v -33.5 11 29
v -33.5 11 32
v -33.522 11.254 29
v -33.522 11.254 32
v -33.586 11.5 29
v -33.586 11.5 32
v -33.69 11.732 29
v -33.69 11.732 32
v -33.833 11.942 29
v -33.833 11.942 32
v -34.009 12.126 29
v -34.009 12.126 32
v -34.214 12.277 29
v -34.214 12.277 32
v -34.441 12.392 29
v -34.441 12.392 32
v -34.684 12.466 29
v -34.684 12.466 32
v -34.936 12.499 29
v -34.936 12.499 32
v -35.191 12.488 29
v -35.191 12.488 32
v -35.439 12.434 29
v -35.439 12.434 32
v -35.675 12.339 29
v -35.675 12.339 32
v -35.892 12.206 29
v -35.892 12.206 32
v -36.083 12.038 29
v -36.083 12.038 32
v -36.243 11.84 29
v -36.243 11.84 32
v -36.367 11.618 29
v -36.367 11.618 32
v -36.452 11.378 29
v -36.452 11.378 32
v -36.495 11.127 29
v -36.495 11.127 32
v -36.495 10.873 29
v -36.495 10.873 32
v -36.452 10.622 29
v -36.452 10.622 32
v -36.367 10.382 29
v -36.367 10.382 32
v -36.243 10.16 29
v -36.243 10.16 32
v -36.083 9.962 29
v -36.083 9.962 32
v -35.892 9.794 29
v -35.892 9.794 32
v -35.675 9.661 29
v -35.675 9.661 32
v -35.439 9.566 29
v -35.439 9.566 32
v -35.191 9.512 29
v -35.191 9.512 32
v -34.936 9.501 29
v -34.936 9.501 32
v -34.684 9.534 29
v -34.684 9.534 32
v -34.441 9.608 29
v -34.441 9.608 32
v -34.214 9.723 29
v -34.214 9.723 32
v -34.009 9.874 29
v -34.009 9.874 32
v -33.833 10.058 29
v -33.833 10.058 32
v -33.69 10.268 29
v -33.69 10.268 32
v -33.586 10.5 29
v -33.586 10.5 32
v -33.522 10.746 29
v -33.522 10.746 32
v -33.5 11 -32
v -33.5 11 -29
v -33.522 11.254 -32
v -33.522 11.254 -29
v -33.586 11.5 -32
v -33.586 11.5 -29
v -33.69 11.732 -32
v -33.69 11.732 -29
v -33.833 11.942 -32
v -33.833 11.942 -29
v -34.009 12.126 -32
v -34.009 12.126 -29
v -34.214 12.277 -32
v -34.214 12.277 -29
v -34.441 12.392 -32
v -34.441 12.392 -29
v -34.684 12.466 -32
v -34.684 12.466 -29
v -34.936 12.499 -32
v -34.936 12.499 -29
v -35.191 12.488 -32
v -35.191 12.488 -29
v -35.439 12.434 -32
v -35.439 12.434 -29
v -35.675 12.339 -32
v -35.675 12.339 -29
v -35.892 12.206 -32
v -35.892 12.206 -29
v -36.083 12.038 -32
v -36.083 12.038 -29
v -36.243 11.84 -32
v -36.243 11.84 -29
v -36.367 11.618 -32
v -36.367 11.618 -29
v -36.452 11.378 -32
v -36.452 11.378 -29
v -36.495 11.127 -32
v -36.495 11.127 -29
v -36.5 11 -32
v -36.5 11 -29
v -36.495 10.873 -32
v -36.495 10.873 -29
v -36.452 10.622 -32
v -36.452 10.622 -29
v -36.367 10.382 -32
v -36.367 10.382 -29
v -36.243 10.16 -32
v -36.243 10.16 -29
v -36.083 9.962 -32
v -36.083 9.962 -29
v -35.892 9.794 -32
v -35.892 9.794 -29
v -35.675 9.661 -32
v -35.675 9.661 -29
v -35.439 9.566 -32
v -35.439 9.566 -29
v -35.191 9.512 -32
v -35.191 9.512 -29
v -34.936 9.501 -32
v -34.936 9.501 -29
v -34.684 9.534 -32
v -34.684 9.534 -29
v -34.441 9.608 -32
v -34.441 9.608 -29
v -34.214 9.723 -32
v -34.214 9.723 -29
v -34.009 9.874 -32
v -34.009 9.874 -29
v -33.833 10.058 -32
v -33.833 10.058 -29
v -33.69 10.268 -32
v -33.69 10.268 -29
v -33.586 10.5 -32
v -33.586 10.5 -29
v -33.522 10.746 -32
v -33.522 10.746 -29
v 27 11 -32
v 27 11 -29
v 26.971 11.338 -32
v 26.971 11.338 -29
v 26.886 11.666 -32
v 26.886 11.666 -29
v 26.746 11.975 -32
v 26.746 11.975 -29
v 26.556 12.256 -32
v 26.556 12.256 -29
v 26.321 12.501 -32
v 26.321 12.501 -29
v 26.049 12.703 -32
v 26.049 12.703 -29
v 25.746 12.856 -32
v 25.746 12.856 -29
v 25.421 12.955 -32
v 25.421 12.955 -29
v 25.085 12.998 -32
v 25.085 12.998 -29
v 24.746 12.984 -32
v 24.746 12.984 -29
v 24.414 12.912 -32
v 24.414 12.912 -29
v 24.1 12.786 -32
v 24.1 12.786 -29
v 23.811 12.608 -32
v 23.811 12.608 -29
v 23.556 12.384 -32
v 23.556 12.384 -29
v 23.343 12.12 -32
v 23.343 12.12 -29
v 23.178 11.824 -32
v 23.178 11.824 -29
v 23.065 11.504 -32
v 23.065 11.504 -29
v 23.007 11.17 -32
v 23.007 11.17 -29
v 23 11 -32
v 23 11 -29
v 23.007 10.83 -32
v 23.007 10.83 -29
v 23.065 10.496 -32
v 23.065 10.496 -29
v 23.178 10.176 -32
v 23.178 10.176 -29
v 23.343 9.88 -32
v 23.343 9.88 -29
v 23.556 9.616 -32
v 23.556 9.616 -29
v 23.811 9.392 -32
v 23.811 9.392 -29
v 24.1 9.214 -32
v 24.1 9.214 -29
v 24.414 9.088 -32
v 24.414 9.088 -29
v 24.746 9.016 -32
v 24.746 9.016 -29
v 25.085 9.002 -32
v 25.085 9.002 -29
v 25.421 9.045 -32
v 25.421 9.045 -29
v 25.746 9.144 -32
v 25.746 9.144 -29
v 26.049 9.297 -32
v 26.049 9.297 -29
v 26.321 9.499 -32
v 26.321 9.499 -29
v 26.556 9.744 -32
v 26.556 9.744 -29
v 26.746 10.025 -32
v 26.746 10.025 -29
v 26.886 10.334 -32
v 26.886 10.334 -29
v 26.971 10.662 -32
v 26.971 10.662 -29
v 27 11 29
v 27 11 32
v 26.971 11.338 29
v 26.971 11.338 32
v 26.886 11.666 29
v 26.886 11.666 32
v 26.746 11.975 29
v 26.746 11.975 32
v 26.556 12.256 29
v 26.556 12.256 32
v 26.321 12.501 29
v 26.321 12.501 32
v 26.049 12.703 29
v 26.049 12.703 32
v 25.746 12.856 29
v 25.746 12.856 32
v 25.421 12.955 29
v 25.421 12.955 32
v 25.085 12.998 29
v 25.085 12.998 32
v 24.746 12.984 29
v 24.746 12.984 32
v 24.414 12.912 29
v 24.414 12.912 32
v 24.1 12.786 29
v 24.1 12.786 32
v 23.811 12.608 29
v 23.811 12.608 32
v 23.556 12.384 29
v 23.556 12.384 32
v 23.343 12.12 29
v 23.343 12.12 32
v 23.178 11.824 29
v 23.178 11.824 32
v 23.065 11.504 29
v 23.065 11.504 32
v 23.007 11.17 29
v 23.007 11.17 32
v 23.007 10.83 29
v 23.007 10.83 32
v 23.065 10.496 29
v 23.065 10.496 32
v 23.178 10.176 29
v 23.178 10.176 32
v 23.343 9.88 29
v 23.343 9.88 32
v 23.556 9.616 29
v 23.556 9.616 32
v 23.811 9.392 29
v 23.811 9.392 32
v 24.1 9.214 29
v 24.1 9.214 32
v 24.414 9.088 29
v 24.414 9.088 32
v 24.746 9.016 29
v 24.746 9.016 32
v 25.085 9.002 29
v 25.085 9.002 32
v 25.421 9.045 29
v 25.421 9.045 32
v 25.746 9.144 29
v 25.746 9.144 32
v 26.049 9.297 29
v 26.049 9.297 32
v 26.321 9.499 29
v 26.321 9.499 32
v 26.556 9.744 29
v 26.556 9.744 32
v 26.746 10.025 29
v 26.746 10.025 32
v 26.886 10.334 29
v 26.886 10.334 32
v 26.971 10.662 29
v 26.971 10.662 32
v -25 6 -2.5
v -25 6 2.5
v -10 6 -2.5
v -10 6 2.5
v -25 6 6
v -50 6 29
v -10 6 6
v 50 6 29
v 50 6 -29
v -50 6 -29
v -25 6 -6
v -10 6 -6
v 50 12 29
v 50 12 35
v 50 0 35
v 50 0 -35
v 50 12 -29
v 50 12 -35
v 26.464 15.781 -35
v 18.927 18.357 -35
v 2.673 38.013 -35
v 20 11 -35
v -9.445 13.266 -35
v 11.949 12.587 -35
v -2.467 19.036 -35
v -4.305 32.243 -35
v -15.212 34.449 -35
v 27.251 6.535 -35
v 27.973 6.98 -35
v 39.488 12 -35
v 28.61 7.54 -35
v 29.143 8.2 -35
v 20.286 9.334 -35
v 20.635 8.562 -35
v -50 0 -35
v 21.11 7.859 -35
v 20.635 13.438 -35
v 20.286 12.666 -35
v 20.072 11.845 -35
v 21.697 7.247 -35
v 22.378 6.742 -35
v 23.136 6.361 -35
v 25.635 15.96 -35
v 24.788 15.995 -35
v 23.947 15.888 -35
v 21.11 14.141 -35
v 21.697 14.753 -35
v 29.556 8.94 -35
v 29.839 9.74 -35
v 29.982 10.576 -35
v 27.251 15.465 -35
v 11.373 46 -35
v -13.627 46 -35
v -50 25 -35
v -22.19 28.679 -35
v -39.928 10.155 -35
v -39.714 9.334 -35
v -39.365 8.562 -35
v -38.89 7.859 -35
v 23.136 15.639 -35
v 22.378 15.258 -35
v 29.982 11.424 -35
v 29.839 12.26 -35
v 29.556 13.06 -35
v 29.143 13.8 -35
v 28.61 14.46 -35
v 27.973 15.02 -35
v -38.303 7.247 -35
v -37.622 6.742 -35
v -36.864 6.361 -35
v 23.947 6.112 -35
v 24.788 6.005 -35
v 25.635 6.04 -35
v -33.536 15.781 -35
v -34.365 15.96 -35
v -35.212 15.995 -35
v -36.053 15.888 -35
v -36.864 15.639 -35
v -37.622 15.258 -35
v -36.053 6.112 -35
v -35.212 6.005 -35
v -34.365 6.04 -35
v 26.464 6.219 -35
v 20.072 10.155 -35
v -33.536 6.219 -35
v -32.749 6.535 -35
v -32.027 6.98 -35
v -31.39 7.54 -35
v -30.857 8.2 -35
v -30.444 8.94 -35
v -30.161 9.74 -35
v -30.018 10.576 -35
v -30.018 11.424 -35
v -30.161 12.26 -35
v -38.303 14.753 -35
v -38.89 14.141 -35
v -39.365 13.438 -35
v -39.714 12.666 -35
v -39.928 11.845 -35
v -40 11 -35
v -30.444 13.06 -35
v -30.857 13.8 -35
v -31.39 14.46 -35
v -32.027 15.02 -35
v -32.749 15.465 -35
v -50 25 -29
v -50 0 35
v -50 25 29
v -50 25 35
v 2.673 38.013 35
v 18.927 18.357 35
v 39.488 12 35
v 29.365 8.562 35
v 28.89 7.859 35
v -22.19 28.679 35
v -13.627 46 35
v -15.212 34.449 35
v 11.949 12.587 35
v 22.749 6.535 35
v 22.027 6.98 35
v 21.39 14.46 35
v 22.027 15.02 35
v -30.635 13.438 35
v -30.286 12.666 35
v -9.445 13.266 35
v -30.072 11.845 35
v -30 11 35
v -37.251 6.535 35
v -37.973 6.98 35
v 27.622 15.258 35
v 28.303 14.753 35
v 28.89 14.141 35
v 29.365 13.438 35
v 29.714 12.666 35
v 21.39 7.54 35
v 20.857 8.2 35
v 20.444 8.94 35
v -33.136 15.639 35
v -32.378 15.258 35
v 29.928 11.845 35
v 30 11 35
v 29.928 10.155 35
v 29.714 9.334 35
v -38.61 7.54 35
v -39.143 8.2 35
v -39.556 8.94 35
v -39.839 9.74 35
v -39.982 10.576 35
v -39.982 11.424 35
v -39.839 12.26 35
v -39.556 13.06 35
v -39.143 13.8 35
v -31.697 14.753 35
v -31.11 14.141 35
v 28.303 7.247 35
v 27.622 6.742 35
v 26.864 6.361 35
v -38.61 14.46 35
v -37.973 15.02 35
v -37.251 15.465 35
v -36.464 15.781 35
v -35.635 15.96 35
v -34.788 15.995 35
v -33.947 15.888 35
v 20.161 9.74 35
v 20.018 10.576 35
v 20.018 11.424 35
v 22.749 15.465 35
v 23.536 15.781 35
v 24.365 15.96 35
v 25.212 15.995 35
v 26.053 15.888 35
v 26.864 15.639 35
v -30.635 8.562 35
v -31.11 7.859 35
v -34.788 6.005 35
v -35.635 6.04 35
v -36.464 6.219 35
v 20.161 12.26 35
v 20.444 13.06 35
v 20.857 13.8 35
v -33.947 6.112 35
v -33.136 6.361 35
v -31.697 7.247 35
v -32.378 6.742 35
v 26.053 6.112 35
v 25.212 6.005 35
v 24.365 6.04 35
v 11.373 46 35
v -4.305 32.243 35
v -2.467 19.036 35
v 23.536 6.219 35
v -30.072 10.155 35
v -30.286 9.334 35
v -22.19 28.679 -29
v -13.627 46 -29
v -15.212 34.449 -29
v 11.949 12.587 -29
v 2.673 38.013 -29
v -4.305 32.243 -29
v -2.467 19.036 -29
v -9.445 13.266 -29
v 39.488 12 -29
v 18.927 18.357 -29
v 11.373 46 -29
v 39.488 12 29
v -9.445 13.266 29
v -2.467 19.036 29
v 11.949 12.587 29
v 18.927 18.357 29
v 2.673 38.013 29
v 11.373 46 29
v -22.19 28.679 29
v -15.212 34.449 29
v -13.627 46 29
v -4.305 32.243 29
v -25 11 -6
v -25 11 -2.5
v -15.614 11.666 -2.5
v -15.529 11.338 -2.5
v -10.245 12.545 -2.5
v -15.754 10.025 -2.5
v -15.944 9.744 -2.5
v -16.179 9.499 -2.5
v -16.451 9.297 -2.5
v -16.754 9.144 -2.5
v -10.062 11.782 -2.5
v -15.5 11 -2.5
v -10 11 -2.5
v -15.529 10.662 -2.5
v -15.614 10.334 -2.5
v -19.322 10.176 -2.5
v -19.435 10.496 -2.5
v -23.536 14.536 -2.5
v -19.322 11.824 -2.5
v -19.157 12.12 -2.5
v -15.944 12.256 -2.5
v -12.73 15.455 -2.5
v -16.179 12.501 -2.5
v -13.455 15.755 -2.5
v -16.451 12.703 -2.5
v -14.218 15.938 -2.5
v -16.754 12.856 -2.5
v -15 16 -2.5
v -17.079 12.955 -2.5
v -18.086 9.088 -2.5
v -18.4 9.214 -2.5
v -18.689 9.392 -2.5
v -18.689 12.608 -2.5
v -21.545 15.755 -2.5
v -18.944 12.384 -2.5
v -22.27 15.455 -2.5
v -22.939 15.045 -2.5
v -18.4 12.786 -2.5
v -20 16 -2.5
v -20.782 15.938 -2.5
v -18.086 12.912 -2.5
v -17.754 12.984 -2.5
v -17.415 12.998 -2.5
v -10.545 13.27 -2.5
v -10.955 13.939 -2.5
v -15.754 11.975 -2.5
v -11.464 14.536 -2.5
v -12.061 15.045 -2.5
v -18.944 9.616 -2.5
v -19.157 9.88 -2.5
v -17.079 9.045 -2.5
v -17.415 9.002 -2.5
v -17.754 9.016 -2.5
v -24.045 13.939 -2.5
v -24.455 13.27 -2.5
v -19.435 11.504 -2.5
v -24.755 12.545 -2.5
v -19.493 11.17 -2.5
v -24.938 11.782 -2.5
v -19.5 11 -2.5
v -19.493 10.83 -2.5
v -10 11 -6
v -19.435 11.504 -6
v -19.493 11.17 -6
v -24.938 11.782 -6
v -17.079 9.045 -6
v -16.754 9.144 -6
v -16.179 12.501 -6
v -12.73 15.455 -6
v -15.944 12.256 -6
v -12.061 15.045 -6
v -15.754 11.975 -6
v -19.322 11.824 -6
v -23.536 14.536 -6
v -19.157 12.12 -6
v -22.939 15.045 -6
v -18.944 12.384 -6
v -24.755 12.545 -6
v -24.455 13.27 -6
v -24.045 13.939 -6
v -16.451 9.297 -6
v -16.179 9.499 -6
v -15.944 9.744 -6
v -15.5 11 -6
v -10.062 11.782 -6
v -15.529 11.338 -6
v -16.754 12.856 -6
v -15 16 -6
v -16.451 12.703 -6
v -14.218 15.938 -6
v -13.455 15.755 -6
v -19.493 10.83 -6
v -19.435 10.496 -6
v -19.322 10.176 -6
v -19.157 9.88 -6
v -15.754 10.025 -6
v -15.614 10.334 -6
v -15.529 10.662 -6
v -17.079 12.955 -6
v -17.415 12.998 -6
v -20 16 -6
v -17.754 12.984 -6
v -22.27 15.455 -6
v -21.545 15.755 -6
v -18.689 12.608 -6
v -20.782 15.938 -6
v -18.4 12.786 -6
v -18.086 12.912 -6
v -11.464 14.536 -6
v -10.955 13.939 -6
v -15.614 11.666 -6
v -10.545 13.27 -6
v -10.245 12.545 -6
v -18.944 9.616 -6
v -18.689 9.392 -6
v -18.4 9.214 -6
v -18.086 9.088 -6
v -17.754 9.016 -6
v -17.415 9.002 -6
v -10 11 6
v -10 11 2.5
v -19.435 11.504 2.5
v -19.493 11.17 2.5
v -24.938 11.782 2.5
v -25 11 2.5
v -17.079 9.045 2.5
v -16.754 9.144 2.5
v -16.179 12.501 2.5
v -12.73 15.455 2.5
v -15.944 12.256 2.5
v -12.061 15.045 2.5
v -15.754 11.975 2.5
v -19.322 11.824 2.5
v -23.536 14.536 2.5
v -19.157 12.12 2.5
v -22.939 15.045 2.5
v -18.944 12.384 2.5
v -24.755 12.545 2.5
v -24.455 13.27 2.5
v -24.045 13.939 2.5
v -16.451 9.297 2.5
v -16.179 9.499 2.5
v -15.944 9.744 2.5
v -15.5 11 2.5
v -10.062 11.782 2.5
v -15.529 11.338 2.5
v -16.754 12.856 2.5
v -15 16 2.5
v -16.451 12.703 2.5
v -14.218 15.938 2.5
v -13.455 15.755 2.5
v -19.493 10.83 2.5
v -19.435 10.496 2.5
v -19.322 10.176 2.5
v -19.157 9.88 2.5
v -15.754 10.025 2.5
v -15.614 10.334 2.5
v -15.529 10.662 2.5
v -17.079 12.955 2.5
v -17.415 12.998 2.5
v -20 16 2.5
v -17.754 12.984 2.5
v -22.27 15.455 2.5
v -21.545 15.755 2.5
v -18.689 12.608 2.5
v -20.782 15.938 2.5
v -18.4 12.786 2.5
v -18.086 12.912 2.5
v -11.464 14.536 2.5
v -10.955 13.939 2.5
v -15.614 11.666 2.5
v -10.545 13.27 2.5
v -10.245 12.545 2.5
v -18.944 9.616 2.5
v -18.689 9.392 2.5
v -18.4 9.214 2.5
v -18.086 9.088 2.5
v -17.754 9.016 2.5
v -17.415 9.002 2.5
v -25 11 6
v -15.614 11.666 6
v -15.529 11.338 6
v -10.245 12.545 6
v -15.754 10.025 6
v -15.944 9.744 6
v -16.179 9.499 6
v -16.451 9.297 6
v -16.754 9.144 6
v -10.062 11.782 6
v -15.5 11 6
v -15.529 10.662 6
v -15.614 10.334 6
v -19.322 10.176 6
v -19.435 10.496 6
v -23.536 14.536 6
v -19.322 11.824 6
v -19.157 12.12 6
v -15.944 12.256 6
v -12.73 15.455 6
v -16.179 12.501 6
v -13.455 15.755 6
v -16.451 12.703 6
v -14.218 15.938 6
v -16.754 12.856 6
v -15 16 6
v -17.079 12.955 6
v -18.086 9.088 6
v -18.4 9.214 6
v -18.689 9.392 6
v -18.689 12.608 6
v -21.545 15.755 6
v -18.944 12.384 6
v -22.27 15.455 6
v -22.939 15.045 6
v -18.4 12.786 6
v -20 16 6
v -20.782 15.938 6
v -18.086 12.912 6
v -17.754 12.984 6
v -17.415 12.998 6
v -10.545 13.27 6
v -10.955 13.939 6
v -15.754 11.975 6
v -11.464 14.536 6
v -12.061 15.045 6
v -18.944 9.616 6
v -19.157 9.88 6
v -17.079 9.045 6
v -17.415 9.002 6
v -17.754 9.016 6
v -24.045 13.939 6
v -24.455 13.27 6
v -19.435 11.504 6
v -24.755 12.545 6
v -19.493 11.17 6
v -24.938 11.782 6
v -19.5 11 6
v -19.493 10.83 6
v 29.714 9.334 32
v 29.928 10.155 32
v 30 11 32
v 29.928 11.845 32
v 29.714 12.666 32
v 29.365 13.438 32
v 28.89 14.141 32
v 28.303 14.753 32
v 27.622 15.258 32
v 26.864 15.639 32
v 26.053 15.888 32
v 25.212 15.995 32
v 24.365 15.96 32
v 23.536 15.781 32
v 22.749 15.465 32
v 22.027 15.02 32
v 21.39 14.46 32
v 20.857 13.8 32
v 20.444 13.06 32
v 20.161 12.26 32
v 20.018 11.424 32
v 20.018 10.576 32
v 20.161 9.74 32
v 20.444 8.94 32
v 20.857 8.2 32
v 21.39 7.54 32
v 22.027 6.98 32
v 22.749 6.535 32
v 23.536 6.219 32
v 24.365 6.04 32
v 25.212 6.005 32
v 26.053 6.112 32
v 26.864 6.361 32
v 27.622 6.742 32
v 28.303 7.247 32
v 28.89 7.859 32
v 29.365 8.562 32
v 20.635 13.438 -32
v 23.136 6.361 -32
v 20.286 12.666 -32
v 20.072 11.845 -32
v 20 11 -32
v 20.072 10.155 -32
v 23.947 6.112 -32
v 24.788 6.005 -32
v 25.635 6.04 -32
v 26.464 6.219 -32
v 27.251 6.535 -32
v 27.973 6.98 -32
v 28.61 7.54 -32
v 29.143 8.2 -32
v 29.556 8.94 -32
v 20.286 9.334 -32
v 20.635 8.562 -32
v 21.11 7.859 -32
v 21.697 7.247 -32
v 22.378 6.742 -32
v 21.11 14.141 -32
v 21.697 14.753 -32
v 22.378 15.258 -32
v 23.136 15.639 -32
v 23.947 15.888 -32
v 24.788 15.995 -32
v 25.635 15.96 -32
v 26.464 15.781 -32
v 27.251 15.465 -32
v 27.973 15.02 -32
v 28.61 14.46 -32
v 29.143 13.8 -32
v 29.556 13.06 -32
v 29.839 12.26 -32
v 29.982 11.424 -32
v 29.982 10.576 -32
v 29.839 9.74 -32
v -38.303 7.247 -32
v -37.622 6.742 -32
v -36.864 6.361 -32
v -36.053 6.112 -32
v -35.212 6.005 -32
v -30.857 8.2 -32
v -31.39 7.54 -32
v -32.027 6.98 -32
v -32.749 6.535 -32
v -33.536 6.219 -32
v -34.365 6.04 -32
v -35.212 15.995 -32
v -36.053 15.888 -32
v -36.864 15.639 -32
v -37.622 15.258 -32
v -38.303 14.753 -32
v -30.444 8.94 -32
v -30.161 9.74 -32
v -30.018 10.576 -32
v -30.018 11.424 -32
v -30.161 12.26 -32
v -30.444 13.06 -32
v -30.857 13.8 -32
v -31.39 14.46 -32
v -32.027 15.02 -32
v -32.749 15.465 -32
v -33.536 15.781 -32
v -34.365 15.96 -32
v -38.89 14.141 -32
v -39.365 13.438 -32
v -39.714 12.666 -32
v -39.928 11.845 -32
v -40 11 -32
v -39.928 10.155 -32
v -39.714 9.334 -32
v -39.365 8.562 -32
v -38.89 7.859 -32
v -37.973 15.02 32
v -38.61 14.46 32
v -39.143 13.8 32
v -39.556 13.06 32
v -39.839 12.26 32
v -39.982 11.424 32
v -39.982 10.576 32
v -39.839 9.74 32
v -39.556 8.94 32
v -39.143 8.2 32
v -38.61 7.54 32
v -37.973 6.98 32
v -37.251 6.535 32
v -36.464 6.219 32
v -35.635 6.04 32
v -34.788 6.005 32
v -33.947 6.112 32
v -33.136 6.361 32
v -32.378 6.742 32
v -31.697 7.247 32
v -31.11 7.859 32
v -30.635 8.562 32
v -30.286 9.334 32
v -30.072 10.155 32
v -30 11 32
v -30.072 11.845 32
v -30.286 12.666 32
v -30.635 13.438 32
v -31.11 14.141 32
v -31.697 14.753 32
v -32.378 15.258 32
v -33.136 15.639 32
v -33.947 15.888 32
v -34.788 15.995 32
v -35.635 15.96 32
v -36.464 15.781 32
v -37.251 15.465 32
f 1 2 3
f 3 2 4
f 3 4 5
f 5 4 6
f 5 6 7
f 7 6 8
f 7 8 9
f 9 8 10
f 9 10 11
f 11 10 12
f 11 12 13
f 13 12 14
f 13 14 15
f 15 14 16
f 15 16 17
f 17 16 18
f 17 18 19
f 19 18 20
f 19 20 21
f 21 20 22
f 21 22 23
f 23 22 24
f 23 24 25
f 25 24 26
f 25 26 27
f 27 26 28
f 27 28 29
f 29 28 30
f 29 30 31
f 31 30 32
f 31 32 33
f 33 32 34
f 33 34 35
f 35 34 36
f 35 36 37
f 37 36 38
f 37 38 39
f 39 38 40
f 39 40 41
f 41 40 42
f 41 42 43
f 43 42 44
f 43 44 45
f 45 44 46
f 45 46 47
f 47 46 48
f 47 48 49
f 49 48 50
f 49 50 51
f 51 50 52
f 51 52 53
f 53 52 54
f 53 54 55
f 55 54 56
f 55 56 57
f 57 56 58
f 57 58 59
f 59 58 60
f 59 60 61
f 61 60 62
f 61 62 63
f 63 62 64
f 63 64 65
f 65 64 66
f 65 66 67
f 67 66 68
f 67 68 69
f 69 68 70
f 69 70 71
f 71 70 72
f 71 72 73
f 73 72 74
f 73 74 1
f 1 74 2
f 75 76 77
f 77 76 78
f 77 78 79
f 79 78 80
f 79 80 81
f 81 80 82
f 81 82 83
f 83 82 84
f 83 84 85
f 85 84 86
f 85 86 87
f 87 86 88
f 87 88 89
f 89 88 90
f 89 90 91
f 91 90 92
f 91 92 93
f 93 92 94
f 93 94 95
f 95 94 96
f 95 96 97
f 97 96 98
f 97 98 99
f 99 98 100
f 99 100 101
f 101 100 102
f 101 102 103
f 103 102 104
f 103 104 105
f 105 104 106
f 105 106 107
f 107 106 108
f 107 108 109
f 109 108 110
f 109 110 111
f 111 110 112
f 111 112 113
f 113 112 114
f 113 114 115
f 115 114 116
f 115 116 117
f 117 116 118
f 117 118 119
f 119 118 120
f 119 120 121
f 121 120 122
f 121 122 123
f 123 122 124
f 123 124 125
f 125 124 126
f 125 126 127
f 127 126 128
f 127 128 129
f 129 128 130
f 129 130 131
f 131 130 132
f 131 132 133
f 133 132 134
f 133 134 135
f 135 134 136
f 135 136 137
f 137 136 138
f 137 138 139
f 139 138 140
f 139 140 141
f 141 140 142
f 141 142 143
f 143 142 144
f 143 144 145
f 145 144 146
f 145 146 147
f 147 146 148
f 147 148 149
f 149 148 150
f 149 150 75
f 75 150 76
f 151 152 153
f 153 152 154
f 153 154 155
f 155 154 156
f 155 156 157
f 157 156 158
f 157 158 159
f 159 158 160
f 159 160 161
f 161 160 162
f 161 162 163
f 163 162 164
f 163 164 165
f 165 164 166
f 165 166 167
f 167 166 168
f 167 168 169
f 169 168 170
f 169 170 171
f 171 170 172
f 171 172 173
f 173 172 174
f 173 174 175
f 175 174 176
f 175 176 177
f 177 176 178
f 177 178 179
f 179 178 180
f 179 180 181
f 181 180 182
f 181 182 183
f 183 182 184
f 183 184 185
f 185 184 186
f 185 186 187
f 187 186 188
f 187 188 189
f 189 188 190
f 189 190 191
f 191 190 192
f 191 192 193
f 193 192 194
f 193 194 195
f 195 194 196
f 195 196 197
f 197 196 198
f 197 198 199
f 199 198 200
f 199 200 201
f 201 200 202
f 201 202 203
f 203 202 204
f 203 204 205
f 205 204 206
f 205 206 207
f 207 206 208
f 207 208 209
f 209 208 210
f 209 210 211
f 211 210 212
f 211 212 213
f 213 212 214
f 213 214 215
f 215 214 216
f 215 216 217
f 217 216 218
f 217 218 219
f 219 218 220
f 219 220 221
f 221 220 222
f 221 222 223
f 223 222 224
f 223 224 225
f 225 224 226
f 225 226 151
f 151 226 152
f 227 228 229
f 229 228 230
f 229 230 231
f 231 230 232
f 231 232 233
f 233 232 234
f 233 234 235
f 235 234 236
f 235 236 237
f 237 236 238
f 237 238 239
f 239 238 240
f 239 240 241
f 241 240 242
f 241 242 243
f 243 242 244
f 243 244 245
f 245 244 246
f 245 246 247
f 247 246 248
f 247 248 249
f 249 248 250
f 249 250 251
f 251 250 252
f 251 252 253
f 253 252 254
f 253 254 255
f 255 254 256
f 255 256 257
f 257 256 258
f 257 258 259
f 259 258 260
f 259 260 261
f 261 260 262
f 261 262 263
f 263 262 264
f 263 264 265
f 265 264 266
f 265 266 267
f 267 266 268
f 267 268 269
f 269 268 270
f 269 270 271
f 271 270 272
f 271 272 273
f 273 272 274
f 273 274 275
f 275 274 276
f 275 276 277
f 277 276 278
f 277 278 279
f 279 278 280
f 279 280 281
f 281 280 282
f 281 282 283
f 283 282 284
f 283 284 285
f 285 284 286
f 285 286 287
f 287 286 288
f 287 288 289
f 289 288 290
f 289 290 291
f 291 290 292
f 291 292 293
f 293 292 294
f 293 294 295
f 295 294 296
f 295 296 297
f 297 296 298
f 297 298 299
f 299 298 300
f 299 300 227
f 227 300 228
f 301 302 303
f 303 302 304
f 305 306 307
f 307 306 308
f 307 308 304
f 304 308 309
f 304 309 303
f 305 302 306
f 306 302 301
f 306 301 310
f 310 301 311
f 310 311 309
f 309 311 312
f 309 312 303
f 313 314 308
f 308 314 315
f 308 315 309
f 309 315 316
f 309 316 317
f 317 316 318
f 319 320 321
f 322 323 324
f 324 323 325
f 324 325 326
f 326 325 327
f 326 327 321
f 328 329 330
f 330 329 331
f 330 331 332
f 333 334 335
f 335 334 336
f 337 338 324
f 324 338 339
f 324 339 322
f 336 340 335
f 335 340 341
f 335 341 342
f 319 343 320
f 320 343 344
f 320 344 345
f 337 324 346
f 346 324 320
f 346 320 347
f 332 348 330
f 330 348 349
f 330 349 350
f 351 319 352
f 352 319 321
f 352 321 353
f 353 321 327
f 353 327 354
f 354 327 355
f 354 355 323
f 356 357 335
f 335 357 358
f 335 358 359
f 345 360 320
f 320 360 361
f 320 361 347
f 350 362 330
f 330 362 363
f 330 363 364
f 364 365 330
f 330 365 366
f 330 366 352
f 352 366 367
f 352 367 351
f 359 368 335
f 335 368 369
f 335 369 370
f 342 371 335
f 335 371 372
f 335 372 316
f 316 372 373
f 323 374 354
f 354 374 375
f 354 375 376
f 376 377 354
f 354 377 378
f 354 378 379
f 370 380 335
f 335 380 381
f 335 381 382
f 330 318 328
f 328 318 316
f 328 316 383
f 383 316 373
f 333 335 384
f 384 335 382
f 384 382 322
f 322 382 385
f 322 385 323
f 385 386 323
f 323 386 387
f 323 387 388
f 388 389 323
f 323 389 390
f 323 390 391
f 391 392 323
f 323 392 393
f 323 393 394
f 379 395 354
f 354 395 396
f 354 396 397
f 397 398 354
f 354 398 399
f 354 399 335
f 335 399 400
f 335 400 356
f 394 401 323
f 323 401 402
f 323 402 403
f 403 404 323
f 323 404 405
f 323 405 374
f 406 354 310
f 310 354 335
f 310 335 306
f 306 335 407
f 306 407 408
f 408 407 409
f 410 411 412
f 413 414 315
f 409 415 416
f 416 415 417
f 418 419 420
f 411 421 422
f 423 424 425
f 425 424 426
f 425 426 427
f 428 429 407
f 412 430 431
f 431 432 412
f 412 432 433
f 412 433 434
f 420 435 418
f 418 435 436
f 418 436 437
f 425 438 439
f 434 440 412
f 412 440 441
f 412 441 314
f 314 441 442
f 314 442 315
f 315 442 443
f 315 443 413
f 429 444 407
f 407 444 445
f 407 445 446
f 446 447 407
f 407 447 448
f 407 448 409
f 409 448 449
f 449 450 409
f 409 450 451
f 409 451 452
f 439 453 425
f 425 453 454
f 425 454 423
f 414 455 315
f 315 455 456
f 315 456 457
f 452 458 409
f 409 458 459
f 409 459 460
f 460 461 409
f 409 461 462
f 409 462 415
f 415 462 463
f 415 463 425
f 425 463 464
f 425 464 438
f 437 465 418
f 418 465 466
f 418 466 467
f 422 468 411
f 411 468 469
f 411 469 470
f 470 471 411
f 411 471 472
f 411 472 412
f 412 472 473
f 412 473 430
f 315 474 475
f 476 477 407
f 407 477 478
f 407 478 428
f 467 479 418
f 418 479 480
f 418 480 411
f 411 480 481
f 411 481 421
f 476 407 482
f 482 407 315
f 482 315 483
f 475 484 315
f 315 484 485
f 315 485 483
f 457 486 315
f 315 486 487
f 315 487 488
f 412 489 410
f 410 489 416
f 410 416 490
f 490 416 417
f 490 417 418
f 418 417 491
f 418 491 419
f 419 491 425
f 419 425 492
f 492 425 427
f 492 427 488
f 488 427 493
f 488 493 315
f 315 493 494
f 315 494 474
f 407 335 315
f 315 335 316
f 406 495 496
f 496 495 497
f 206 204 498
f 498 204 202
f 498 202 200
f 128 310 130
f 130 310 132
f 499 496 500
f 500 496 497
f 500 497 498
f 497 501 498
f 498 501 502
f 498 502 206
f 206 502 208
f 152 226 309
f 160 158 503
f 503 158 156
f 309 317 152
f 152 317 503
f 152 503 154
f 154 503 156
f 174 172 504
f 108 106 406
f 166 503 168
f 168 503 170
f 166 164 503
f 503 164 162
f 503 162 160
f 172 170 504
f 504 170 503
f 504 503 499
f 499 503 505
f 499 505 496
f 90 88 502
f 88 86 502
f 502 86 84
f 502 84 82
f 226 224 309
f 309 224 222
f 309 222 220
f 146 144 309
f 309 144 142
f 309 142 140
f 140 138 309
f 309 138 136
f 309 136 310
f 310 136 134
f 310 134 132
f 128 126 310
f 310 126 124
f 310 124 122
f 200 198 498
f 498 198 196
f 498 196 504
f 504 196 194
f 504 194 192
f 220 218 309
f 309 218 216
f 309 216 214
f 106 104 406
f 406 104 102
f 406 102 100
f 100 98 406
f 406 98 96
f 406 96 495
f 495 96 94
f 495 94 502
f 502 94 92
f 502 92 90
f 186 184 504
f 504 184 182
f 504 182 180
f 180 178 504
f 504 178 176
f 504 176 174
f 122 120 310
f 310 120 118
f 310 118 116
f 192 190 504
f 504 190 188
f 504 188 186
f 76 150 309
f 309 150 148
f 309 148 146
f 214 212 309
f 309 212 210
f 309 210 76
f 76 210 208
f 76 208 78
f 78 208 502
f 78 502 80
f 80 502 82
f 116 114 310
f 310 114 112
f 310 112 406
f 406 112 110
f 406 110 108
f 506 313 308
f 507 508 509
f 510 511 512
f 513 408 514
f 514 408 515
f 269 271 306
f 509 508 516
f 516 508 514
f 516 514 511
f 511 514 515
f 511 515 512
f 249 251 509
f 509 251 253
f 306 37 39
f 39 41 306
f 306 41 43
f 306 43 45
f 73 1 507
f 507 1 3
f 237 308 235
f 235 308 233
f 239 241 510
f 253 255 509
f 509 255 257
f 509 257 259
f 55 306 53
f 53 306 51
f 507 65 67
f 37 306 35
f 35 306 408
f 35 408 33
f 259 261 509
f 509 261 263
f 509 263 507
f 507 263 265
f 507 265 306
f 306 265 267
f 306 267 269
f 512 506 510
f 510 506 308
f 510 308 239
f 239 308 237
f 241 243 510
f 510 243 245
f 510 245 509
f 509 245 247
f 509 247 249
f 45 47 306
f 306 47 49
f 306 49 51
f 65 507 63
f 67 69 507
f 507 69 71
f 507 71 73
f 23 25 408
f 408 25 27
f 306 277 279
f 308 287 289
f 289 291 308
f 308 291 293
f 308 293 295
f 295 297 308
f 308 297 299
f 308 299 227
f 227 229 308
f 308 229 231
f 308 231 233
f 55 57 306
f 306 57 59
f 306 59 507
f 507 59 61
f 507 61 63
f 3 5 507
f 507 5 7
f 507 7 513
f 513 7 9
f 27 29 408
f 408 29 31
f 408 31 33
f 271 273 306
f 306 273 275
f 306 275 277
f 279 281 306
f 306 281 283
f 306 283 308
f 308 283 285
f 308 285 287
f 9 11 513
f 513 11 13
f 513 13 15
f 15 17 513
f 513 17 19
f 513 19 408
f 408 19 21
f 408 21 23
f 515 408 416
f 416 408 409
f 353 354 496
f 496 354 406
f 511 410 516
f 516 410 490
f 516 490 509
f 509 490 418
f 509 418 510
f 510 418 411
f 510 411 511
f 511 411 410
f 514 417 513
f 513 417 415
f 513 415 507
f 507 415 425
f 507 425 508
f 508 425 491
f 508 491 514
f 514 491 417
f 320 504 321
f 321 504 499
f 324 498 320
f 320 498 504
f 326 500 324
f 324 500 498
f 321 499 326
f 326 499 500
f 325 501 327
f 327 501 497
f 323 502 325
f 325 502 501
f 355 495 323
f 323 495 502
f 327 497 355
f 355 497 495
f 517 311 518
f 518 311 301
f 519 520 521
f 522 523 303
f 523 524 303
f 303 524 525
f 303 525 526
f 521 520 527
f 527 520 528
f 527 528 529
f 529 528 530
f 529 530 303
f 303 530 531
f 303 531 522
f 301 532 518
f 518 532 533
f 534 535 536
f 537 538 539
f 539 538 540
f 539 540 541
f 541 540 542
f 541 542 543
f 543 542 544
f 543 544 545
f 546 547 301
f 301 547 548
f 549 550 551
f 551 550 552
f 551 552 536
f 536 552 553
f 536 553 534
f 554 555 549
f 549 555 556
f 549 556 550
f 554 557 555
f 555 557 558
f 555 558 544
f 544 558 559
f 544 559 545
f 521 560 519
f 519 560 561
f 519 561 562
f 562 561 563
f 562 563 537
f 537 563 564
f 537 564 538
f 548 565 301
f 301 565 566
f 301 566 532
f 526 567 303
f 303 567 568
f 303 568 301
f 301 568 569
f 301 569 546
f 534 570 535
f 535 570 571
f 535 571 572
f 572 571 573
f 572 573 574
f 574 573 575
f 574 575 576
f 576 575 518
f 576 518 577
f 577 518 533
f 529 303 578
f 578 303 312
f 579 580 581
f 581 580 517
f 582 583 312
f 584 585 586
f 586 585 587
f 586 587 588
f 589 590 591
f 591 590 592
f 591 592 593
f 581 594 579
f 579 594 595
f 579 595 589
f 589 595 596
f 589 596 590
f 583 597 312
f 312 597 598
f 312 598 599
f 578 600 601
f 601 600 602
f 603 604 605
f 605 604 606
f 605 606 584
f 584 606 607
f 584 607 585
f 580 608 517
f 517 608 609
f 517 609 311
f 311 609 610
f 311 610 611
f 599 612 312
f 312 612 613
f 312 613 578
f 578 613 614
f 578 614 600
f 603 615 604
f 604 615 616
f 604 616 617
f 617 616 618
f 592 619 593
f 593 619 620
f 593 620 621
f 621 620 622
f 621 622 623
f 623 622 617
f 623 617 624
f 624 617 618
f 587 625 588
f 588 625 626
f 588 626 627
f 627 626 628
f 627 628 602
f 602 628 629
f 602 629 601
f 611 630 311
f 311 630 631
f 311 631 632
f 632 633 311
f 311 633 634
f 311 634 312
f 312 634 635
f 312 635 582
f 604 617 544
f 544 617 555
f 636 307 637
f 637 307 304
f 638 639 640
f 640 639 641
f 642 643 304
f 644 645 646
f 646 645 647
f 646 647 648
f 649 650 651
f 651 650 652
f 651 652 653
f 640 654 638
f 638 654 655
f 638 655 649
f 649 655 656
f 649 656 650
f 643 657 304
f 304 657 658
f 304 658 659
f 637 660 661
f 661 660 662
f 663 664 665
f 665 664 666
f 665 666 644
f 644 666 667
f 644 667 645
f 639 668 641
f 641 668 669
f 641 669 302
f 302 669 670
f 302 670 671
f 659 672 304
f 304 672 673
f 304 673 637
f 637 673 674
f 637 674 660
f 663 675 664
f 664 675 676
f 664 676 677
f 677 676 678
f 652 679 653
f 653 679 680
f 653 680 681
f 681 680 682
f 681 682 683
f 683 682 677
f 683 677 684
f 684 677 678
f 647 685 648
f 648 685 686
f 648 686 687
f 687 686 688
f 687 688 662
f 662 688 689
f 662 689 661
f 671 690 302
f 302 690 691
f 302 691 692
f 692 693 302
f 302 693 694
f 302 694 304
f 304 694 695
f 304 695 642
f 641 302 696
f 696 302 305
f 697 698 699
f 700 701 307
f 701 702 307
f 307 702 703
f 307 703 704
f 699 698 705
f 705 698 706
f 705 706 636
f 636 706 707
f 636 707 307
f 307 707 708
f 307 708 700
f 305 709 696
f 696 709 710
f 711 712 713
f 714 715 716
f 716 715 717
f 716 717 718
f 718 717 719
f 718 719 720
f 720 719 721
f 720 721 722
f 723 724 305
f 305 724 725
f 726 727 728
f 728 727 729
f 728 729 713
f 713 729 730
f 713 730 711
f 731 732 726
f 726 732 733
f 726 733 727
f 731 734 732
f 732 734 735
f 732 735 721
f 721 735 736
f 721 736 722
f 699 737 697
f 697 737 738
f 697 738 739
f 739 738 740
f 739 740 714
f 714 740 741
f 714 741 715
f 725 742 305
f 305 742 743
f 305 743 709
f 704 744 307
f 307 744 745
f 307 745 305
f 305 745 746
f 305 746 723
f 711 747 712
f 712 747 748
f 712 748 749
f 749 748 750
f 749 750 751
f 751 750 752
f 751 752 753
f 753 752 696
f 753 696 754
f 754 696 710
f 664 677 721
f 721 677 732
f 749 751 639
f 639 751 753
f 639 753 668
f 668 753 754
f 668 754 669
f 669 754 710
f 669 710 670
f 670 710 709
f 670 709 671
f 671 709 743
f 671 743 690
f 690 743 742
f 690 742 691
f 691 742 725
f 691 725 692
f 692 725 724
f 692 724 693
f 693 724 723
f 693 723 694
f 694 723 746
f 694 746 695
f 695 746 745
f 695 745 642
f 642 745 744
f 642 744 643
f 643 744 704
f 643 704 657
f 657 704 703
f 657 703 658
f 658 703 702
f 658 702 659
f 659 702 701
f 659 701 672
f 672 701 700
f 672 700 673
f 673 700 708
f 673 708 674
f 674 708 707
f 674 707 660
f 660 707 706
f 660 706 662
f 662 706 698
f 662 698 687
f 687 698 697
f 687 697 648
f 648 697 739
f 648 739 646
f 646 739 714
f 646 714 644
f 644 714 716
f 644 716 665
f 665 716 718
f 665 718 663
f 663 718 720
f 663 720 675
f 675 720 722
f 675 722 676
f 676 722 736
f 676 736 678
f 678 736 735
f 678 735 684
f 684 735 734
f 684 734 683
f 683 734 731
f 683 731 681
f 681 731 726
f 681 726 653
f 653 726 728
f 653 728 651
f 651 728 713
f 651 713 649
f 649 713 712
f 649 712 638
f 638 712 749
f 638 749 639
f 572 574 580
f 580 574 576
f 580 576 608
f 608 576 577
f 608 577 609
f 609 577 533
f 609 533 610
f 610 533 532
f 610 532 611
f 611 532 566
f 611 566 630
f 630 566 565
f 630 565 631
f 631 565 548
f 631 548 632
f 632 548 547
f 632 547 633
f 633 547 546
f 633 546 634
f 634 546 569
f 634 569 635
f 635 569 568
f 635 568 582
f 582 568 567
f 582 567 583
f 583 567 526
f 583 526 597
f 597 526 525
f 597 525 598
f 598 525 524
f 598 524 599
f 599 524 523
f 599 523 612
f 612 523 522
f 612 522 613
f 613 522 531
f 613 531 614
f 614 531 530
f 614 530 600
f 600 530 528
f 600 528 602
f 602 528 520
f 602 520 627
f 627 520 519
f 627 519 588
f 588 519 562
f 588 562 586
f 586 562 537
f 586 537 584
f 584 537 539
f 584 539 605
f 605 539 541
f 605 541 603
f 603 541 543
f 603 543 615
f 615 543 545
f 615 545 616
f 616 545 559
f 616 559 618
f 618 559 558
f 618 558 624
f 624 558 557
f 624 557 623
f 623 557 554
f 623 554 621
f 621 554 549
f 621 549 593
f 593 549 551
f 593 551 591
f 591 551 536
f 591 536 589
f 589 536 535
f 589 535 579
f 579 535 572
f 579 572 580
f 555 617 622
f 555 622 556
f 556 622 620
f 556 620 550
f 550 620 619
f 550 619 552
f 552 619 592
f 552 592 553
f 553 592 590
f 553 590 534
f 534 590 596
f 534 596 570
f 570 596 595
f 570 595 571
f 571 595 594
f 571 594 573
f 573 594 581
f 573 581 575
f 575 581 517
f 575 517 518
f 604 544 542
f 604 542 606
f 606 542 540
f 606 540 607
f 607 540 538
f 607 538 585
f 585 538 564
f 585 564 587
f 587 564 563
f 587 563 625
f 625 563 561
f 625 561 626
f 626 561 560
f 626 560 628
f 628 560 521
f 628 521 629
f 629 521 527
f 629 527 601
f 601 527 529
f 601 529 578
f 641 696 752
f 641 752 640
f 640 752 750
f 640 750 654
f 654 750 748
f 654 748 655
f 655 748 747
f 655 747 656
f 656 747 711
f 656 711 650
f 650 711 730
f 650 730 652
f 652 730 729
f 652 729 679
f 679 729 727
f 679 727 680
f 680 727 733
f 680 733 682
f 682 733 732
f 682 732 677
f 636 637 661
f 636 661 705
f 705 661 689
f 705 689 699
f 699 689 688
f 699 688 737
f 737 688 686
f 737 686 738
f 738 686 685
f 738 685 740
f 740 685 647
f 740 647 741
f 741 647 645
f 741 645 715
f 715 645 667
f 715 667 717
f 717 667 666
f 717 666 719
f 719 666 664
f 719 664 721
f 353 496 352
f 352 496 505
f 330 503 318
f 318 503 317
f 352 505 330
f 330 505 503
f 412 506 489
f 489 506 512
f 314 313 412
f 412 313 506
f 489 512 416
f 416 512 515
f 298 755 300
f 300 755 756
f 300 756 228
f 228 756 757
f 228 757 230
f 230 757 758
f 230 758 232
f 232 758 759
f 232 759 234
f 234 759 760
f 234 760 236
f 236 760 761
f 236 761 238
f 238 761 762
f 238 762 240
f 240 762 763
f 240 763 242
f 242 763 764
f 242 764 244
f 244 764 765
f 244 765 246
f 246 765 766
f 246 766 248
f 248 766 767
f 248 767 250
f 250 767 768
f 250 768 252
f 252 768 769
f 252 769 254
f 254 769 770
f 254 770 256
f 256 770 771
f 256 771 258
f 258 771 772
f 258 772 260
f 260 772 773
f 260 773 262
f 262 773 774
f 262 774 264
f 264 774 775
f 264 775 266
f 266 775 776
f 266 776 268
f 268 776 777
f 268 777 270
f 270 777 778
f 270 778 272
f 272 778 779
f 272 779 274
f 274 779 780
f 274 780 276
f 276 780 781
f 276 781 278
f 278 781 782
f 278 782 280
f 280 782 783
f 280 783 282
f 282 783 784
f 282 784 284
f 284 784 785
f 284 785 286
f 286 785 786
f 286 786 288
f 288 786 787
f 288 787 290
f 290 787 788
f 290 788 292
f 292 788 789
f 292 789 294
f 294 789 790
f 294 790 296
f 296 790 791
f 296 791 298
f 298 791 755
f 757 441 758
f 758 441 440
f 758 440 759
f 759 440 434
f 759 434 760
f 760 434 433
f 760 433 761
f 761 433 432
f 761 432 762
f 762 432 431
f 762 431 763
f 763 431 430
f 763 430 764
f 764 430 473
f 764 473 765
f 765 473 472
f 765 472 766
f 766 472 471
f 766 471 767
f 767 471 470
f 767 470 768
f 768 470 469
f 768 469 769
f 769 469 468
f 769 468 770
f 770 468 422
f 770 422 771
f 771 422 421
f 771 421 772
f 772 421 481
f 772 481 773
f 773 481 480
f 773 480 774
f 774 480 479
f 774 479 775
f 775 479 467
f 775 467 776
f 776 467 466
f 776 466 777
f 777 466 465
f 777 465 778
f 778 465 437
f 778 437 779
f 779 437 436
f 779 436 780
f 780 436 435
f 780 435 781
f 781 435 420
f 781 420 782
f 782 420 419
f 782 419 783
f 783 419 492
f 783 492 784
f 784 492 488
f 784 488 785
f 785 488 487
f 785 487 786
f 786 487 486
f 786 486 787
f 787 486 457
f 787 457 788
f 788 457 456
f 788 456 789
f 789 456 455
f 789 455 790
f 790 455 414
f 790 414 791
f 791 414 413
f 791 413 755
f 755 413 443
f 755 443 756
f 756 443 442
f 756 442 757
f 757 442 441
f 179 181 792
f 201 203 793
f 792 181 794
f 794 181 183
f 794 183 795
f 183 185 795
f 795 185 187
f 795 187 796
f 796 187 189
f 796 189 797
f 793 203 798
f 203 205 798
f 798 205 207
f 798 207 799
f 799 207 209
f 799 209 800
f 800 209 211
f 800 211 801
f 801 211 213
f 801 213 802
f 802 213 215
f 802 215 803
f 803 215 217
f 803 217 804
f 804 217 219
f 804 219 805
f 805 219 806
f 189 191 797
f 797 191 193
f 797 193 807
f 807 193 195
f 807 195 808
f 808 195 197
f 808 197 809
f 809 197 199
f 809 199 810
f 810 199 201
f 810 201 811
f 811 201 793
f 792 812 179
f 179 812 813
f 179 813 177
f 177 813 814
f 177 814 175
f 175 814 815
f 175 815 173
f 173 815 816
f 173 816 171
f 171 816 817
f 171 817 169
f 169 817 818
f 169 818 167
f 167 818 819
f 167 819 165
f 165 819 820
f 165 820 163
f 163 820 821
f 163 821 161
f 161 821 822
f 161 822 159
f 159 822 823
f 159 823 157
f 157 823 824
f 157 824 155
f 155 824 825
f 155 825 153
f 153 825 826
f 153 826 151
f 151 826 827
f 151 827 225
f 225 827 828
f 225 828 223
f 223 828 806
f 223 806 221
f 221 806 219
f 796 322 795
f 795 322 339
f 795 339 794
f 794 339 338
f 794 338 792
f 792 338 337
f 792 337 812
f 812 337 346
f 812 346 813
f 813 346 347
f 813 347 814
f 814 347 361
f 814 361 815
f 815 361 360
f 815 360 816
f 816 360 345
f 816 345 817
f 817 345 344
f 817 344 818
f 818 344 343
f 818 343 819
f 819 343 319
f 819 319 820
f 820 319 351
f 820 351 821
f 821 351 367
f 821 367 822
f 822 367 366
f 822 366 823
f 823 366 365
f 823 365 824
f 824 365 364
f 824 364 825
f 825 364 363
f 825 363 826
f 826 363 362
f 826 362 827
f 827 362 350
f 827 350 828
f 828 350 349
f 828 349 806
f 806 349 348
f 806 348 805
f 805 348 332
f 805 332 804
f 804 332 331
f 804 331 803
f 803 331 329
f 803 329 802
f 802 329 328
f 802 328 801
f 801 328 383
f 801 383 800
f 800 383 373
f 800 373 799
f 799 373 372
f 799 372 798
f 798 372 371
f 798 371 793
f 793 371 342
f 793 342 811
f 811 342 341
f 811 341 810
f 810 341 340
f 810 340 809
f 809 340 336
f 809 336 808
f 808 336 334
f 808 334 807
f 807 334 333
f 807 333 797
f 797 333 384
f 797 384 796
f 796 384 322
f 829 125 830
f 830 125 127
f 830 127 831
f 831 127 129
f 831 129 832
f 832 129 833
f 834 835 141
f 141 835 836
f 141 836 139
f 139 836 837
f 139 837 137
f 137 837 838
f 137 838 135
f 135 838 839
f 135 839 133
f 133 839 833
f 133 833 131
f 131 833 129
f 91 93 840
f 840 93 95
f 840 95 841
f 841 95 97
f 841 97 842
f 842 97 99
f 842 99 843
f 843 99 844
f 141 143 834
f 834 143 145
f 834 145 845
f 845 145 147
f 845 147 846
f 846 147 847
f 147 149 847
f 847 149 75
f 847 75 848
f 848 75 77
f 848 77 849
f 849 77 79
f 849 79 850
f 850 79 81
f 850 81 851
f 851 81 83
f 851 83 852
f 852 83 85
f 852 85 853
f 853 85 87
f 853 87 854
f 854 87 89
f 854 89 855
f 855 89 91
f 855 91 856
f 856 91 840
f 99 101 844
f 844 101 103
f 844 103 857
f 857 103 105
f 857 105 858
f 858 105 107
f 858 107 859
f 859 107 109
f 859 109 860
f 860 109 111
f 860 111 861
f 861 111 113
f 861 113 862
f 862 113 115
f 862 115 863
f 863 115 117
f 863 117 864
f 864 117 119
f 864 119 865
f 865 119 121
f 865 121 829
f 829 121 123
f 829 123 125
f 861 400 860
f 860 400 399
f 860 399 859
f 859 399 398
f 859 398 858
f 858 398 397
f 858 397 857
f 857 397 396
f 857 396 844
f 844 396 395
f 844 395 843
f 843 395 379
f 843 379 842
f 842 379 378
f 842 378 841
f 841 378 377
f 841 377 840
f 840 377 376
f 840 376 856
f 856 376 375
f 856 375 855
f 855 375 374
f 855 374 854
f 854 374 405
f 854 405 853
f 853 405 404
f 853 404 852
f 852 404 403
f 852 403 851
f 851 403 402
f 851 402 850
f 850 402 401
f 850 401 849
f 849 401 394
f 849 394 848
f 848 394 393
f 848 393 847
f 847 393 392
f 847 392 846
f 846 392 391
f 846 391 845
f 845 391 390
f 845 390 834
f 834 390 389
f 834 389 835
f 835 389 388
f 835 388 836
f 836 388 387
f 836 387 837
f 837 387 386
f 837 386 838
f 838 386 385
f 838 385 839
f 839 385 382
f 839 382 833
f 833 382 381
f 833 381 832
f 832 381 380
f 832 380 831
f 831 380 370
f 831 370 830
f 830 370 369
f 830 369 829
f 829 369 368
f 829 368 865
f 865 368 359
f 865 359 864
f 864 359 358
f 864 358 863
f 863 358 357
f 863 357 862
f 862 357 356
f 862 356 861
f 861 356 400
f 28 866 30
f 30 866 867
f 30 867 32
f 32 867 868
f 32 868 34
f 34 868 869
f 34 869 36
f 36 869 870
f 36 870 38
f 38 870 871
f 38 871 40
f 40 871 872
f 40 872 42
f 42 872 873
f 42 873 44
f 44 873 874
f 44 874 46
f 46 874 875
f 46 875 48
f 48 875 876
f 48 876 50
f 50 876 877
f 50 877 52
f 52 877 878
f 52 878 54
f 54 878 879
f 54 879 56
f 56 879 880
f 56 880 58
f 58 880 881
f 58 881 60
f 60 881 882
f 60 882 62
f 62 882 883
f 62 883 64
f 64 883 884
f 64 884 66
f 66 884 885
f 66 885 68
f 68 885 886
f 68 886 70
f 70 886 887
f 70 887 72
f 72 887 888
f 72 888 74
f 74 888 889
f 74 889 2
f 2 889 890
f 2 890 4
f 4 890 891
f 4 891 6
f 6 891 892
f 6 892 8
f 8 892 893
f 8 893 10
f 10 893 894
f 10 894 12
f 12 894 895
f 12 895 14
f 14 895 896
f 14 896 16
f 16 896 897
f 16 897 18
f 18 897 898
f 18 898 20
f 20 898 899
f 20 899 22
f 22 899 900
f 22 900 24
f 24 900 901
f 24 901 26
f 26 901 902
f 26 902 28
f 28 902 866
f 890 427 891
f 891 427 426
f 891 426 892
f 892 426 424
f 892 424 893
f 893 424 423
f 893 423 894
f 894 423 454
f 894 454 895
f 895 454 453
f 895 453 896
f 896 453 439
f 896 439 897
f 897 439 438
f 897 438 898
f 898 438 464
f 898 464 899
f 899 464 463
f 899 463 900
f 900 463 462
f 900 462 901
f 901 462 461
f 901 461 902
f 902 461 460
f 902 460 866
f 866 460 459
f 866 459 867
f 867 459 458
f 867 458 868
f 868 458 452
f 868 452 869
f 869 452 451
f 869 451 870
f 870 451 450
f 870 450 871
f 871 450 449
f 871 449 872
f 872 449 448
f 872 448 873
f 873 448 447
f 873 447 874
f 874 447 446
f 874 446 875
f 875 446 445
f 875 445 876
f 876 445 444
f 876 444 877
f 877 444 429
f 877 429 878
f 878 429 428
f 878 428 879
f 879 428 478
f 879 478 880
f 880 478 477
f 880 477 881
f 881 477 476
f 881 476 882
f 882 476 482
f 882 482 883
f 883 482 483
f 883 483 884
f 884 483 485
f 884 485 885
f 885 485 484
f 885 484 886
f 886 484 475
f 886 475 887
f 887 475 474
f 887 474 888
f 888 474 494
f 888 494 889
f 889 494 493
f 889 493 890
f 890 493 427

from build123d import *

# Parameters (mm, degrees)
SKETCH1_W               = 100
SKETCH1_H               = 70
BOSS_EXTRUDE1_DEPTH     = 6
SKETCH2_W               = 100
SKETCH2_H               = 6
BOSS_EXTRUDE2_DEPTH     = 50
CUT_EXTRUDE1_DEPTH      = 103.645019363
CUT_EXTRUDE1_DEPTH_BACK = 103.645019363
SKETCH3_R               = 1.5
SKETCH3_R_2             = 2
CUT_EXTRUDE2_DEPTH      = 103.645019363
CUT_EXTRUDE2_DEPTH_BACK = 103.645019363
CUT_EXTRUDE3_DEPTH      = 103.645019363
CUT_EXTRUDE4_DEPTH      = 103.645019363
CUT_EXTRUDE4_DEPTH_BACK = 103.645019363
CUT_EXTRUDE5_DEPTH      = 103.645019363
CUT_EXTRUDE5_DEPTH_BACK = 103.645019363
SKETCH9_W               = 15
SKETCH9_H               = 3.5
BOSS_EXTRUDE3_DEPTH     = 10
CUT_EXTRUDE8_START      = -3.5
SKETCH11_R              = 2
CUT_EXTRUDE8_DEPTH      = 12
FILLET1_R               = 5
FILLET2_R               = 5
FILLET3_R               = 5
FILLET4_R               = 5
CUT_EXTRUDE9_DEPTH      = 103.645019363
SKETCH14_R              = 5
CUT_EXTRUDE10_DEPTH     = 3
CUT_EXTRUDE11_START     = -3
SKETCH15_R              = 5
CUT_EXTRUDE11_DEPTH     = 3
SKETCH16_R              = 5
CUT_EXTRUDE12_DEPTH     = 3
CUT_EXTRUDE13_START     = -3
SKETCH17_R              = 5
CUT_EXTRUDE13_DEPTH     = 3


with BuildPart() as part:
    # Sketch1 → Boss-Extrude1 (new body)
    with BuildSketch(Plane(origin=(0, 0, 0), x_dir=(1, 0, 0), z_dir=(0, 1, 0))):
        Rectangle(SKETCH1_W, SKETCH1_H)
    extrude(amount=BOSS_EXTRUDE1_DEPTH)

    # Sketch2 → Boss-Extrude2 (add)
    with BuildSketch(Plane(origin=(0, 6, 0), x_dir=(1, 0, 0), z_dir=(0, 1, 0))):
        with Locations((0, 32)):
            Rectangle(SKETCH2_W, SKETCH2_H)
        with Locations((0, -32)):
            Rectangle(SKETCH2_W, SKETCH2_H)
    extrude(amount=BOSS_EXTRUDE2_DEPTH)

    # Sketch3 → Cut-Extrude1 (cut, two sides: drawn at the far end of the back side and taken through both)
    with BuildSketch(Plane.XY.offset(35).offset(-CUT_EXTRUDE1_DEPTH_BACK)):
        with Locations((-35, 11)):
            Circle(SKETCH3_R)
        with Locations((25, 11)):
            Circle(SKETCH3_R_2)
    extrude(amount=CUT_EXTRUDE1_DEPTH + CUT_EXTRUDE1_DEPTH_BACK, mode=Mode.SUBTRACT)

    # Sketch4 → Cut-Extrude2 (cut, two sides: drawn at the far end of the back side and taken through both)
    with BuildSketch(Plane.XY.offset(35).offset(-CUT_EXTRUDE2_DEPTH_BACK)):
        Polygon((-50, 25), (3.693575035, 56), (-50, 56), align=None)
    extrude(amount=CUT_EXTRUDE2_DEPTH + CUT_EXTRUDE2_DEPTH_BACK, mode=Mode.SUBTRACT)

    # Sketch5 → Cut-Extrude3 (cut, through all)
    with BuildSketch(Plane.XY.offset(35)):
        Polygon((26.846787517, 56), (50, 28), (50, 56), align=None)
    extrude(amount=-CUT_EXTRUDE3_DEPTH, mode=Mode.SUBTRACT)

    # Sketch6 → Cut-Extrude4 (cut, two sides: drawn at the far end of the back side and taken through both)
    with BuildSketch(Plane.XY.offset(35).offset(-CUT_EXTRUDE4_DEPTH_BACK)):
        Polygon((16.600357162, 47.527222171), (39.753569645, 19.527222171), (47.460108019, 25.899762189), (24.306895537, 53.899762189), align=None)
    extrude(amount=CUT_EXTRUDE4_DEPTH + CUT_EXTRUDE4_DEPTH_BACK, mode=Mode.SUBTRACT)

    # Sketch7 → Cut-Extrude5 (cut, two sides: drawn at the far end of the back side and taken through both)
    with BuildSketch(Plane.XY.offset(35).offset(-CUT_EXTRUDE5_DEPTH_BACK)):
        Polygon((2.673241004, 38.01310693), (-4.304705141, 32.243040152), (11.948586847, 12.587358417), (18.926532993, 18.357425196), align=None)
        Polygon((-15.212346405, 34.449406206), (-22.19029255, 28.679339427), (-9.445212514, 13.266262678), (-2.467266369, 19.036329456), align=None)
    extrude(amount=CUT_EXTRUDE5_DEPTH + CUT_EXTRUDE5_DEPTH_BACK, mode=Mode.SUBTRACT)

    # Sketch9 → Boss-Extrude3 (add)
    with BuildSketch(Plane(origin=(0, 6, 0), x_dir=(1, 0, 0), z_dir=(0, 1, 0))):
        with Locations((-17.5, 4.25)):
            Rectangle(SKETCH9_W, SKETCH9_H)
        with Locations((-17.5, -4.25)):
            Rectangle(SKETCH9_W, SKETCH9_H)
    extrude(amount=BOSS_EXTRUDE3_DEPTH)

    # Sketch11 → Cut-Extrude8 (cut)
    with BuildSketch(Plane.XY.offset(-2.5).offset(CUT_EXTRUDE8_START)):
        with Locations((-17.5, 11)):
            Circle(SKETCH11_R)
    extrude(amount=CUT_EXTRUDE8_DEPTH, mode=Mode.SUBTRACT)

    # Fillet1
    fillet1_edges = [part.edges().sort_by_distance(p)[0] for p in [
        (-25, 16, -4.25),
    ]]
    fillet(fillet1_edges, radius=FILLET1_R)

    # Fillet2
    fillet2_edges = [part.edges().sort_by_distance(p)[0] for p in [
        (-10, 16, -4.25),
    ]]
    fillet(fillet2_edges, radius=FILLET2_R)

    # Fillet3
    fillet3_edges = [part.edges().sort_by_distance(p)[0] for p in [
        (-25, 16, 4.25),
    ]]
    fillet(fillet3_edges, radius=FILLET3_R)

    # Fillet4
    fillet4_edges = [part.edges().sort_by_distance(p)[0] for p in [
        (-10, 16, 4.25),
    ]]
    fillet(fillet4_edges, radius=FILLET4_R)

    # Sketch13 → Cut-Extrude9 (cut, through all)
    with BuildSketch(Plane(origin=(0, 0, -35), x_dir=(-1, 0, 0), z_dir=(0, 0, -1))):
        Polygon((-50, 12), (-39.487682116, 12), (-11.373066959, 46), (13.626933041, 46), (-3.693575035, 56), (-26.846787517, 56), (-50, 28), align=None)
    extrude(amount=-CUT_EXTRUDE9_DEPTH, mode=Mode.SUBTRACT)

    # Sketch14 → Cut-Extrude10 (cut)
    with BuildSketch(Plane.XY.offset(35)):
        with Locations((25, 11)):
            Circle(SKETCH14_R)
    extrude(amount=-CUT_EXTRUDE10_DEPTH, mode=Mode.SUBTRACT)

    # Sketch15 → Cut-Extrude11 (cut)
    with BuildSketch(Plane(origin=(0, 0, -35), x_dir=(-1, 0, 0), z_dir=(0, 0, -1)).offset(CUT_EXTRUDE11_START)):
        with Locations(Location((-25, 11, 0), (0, 0, 180))):
            Circle(SKETCH15_R)
    extrude(amount=CUT_EXTRUDE11_DEPTH, mode=Mode.SUBTRACT)

    # Sketch16 → Cut-Extrude12 (cut)
    with BuildSketch(Plane(origin=(0, 0, -35), x_dir=(-1, 0, 0), z_dir=(0, 0, -1))):
        with Locations((35, 11)):
            Circle(SKETCH16_R)
    extrude(amount=-CUT_EXTRUDE12_DEPTH, mode=Mode.SUBTRACT)

    # Sketch17 → Cut-Extrude13 (cut)
    with BuildSketch(Plane.XY.offset(35).offset(CUT_EXTRUDE13_START)):
        with Locations(Location((-35, 11, 0), (0, 0, 180))):
            Circle(SKETCH17_R)
    extrude(amount=CUT_EXTRUDE13_DEPTH, mode=Mode.SUBTRACT)


solid = part.part
